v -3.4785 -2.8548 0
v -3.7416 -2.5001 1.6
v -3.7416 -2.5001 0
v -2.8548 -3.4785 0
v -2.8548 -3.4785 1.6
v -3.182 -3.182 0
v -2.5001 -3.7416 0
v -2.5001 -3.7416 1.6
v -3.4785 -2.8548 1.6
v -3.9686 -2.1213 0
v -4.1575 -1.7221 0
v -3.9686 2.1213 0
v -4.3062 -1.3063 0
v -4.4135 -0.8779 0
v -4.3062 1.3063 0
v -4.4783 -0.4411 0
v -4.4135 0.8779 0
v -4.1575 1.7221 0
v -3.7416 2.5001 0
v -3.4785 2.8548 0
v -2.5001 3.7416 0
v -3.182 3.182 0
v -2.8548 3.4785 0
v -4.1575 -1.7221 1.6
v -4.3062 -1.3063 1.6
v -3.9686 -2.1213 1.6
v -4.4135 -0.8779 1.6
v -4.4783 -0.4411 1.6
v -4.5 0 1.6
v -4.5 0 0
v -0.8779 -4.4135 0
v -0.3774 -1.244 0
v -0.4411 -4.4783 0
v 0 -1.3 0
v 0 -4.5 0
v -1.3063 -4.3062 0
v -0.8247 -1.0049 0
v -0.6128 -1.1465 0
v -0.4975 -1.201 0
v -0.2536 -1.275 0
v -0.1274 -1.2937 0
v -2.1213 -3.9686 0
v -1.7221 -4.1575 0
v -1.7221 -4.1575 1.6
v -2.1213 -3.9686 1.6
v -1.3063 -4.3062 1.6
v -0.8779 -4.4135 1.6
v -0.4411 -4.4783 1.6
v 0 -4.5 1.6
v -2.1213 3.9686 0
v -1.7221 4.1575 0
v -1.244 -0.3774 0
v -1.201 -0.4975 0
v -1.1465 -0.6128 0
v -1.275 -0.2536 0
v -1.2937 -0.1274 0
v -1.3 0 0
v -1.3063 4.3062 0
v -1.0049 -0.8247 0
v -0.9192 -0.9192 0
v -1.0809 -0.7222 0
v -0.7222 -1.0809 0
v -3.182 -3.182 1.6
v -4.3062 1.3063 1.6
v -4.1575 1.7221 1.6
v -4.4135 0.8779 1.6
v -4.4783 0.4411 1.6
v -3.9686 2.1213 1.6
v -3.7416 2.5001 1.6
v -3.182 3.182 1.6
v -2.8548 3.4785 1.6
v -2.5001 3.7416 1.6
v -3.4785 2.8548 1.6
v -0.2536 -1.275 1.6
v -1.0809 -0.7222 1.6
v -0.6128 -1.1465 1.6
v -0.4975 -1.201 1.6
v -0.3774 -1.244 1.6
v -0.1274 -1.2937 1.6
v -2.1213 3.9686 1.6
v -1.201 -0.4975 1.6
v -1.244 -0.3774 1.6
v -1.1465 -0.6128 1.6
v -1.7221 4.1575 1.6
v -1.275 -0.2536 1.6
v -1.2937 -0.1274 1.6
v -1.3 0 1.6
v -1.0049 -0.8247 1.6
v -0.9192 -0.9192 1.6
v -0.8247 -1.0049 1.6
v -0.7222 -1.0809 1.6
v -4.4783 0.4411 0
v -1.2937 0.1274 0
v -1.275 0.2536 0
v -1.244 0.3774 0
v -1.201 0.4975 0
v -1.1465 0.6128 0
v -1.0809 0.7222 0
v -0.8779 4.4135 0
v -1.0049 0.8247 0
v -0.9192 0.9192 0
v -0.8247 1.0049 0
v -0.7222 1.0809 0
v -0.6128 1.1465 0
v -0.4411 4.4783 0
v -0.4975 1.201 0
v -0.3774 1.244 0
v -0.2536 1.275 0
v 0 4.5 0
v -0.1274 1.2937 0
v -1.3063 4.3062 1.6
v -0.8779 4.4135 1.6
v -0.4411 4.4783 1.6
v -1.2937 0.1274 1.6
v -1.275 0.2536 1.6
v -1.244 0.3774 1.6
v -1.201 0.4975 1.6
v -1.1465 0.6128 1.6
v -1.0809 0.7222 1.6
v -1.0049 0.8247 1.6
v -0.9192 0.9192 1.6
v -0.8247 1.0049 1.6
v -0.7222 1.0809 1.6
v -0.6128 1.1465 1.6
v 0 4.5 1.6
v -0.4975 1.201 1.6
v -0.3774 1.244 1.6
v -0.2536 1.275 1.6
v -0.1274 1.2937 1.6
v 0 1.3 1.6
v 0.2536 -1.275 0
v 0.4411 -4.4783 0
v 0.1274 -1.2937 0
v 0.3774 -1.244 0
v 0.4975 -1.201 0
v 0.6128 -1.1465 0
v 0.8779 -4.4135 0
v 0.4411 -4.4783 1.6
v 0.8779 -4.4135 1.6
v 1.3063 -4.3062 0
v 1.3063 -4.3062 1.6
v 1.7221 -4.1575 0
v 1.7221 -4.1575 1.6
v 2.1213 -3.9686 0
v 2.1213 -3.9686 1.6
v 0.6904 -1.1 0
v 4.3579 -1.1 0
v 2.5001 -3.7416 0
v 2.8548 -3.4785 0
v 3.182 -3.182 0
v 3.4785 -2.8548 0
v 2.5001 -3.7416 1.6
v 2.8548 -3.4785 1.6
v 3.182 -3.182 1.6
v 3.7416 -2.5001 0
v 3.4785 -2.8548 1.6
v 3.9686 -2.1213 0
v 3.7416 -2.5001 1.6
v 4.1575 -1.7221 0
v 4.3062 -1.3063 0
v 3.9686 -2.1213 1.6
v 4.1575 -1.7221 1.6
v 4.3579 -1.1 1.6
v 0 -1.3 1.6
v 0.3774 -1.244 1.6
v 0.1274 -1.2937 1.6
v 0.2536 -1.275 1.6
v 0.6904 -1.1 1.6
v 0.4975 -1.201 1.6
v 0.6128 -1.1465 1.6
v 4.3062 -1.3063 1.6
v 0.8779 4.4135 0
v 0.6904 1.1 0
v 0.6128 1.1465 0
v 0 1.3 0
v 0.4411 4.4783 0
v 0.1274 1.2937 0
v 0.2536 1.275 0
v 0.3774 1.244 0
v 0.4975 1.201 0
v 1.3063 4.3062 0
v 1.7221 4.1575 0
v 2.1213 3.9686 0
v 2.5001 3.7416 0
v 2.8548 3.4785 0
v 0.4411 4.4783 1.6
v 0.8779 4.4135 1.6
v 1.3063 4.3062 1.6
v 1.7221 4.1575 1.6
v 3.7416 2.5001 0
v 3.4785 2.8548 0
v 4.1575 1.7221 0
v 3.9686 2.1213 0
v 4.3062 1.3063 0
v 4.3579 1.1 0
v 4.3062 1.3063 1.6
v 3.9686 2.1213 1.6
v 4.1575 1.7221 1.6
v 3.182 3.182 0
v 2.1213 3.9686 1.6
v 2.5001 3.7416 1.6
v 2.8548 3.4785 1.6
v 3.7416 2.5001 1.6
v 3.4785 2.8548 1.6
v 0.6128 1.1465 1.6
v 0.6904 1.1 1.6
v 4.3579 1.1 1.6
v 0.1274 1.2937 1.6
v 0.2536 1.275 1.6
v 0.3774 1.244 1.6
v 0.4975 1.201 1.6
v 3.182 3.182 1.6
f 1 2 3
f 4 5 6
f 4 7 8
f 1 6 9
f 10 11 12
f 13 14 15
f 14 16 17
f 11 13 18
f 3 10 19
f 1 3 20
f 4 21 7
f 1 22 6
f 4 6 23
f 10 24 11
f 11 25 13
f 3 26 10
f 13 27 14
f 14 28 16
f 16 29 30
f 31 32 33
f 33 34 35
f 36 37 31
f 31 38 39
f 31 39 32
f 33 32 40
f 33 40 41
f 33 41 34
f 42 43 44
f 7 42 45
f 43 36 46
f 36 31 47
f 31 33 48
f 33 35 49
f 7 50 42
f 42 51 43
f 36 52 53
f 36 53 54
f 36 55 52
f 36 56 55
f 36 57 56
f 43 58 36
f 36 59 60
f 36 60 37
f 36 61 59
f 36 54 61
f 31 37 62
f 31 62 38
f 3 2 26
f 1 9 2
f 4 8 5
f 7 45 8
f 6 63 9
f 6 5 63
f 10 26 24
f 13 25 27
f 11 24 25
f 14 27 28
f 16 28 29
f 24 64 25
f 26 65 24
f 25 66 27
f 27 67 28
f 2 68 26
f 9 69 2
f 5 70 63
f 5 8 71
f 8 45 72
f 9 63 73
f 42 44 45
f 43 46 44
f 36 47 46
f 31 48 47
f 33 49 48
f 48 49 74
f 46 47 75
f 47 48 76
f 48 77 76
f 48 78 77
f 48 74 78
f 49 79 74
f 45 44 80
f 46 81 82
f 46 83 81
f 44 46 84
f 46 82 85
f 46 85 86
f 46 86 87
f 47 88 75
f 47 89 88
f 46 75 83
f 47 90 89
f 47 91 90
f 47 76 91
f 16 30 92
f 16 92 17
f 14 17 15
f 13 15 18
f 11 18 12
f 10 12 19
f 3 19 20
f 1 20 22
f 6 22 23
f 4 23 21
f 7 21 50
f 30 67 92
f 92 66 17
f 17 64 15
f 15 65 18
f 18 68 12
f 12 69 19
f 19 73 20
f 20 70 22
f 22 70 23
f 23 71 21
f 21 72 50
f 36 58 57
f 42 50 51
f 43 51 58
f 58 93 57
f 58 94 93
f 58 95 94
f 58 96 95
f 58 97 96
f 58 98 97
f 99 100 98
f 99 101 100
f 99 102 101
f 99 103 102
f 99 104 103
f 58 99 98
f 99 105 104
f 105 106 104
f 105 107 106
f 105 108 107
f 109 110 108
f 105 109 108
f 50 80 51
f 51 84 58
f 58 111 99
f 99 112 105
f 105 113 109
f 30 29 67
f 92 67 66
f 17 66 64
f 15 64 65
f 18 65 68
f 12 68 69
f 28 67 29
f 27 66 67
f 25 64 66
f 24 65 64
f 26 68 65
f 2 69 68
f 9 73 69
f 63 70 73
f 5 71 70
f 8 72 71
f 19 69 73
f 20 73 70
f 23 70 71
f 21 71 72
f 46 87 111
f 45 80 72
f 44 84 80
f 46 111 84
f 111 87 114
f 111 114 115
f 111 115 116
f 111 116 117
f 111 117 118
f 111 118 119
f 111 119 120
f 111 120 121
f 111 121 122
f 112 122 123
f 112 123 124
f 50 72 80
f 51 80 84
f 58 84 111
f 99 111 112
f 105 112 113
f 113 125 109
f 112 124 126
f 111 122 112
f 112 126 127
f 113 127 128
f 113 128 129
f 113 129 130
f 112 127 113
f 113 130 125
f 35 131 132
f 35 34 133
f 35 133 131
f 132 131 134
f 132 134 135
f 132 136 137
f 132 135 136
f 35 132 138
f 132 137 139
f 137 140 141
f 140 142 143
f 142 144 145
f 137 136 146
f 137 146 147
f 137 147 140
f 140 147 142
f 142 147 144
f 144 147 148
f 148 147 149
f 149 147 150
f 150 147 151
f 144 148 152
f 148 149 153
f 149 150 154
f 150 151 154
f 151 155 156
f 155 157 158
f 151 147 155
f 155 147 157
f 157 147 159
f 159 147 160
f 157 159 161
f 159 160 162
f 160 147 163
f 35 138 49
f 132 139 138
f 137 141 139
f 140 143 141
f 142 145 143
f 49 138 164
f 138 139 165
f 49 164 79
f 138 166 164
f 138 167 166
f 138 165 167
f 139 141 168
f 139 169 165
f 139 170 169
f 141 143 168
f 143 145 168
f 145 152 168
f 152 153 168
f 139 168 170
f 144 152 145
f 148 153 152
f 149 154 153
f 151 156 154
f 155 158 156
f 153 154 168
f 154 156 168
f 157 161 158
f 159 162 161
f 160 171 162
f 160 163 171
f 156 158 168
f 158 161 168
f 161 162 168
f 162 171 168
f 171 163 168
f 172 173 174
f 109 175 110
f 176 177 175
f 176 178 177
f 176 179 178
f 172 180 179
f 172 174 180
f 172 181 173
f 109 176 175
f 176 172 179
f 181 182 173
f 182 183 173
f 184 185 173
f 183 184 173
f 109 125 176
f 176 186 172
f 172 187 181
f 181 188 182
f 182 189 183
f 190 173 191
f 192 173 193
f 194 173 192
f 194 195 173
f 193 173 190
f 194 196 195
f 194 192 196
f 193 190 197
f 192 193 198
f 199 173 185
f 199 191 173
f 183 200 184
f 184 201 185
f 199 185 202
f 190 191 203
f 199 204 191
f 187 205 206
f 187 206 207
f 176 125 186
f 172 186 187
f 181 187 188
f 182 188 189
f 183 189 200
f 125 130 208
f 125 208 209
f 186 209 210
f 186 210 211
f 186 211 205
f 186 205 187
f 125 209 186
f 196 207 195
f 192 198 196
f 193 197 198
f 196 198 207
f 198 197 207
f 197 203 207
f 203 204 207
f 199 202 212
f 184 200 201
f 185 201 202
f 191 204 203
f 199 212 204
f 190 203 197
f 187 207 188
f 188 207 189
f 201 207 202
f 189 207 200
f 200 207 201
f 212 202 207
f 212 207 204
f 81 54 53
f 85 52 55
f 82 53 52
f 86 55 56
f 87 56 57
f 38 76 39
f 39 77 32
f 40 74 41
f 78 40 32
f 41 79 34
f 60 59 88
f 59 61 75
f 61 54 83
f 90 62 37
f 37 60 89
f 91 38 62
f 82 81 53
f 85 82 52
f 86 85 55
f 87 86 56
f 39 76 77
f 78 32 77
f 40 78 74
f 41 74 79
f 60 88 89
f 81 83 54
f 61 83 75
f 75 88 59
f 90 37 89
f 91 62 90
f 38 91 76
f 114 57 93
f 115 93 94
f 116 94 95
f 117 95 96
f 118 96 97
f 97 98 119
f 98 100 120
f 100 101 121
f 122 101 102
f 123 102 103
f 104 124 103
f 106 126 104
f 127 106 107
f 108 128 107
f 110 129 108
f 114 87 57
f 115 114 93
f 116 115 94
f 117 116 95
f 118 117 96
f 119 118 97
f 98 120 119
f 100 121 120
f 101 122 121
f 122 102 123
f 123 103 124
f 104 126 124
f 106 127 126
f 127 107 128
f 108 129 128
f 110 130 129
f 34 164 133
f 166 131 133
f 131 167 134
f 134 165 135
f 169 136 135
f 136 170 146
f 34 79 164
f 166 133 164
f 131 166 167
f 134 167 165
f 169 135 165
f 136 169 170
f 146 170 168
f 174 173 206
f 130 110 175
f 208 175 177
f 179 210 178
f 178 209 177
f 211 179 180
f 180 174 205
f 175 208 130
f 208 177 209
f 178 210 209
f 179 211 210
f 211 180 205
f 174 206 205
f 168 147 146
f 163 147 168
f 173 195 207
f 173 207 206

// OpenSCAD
// EXPERIMENTAL C-clip for the groove on printed_joint_pin.scad.
// The 2.2 mm opening is slightly narrower than the 2.4 mm groove. Fit is
// printer-dependent; print spares and inspect for cracking or loose retention.
$fn = 64;

clip_outer_d = 9.0;
clip_bore_d = 2.6;
clip_opening = 2.2;
clip_thickness = 1.6;

assert(clip_outer_d > clip_bore_d + 4);
assert(clip_opening < clip_bore_d);

module printed_joint_clip() {
    difference() {
        cylinder(d = clip_outer_d, h = clip_thickness);
        translate([0, 0, -0.1])
            cylinder(d = clip_bore_d, h = clip_thickness + 0.2);
        translate([0, -clip_opening / 2, -0.1])
            cube([clip_outer_d, clip_opening, clip_thickness + 0.2]);
    }
}

printed_joint_clip();
